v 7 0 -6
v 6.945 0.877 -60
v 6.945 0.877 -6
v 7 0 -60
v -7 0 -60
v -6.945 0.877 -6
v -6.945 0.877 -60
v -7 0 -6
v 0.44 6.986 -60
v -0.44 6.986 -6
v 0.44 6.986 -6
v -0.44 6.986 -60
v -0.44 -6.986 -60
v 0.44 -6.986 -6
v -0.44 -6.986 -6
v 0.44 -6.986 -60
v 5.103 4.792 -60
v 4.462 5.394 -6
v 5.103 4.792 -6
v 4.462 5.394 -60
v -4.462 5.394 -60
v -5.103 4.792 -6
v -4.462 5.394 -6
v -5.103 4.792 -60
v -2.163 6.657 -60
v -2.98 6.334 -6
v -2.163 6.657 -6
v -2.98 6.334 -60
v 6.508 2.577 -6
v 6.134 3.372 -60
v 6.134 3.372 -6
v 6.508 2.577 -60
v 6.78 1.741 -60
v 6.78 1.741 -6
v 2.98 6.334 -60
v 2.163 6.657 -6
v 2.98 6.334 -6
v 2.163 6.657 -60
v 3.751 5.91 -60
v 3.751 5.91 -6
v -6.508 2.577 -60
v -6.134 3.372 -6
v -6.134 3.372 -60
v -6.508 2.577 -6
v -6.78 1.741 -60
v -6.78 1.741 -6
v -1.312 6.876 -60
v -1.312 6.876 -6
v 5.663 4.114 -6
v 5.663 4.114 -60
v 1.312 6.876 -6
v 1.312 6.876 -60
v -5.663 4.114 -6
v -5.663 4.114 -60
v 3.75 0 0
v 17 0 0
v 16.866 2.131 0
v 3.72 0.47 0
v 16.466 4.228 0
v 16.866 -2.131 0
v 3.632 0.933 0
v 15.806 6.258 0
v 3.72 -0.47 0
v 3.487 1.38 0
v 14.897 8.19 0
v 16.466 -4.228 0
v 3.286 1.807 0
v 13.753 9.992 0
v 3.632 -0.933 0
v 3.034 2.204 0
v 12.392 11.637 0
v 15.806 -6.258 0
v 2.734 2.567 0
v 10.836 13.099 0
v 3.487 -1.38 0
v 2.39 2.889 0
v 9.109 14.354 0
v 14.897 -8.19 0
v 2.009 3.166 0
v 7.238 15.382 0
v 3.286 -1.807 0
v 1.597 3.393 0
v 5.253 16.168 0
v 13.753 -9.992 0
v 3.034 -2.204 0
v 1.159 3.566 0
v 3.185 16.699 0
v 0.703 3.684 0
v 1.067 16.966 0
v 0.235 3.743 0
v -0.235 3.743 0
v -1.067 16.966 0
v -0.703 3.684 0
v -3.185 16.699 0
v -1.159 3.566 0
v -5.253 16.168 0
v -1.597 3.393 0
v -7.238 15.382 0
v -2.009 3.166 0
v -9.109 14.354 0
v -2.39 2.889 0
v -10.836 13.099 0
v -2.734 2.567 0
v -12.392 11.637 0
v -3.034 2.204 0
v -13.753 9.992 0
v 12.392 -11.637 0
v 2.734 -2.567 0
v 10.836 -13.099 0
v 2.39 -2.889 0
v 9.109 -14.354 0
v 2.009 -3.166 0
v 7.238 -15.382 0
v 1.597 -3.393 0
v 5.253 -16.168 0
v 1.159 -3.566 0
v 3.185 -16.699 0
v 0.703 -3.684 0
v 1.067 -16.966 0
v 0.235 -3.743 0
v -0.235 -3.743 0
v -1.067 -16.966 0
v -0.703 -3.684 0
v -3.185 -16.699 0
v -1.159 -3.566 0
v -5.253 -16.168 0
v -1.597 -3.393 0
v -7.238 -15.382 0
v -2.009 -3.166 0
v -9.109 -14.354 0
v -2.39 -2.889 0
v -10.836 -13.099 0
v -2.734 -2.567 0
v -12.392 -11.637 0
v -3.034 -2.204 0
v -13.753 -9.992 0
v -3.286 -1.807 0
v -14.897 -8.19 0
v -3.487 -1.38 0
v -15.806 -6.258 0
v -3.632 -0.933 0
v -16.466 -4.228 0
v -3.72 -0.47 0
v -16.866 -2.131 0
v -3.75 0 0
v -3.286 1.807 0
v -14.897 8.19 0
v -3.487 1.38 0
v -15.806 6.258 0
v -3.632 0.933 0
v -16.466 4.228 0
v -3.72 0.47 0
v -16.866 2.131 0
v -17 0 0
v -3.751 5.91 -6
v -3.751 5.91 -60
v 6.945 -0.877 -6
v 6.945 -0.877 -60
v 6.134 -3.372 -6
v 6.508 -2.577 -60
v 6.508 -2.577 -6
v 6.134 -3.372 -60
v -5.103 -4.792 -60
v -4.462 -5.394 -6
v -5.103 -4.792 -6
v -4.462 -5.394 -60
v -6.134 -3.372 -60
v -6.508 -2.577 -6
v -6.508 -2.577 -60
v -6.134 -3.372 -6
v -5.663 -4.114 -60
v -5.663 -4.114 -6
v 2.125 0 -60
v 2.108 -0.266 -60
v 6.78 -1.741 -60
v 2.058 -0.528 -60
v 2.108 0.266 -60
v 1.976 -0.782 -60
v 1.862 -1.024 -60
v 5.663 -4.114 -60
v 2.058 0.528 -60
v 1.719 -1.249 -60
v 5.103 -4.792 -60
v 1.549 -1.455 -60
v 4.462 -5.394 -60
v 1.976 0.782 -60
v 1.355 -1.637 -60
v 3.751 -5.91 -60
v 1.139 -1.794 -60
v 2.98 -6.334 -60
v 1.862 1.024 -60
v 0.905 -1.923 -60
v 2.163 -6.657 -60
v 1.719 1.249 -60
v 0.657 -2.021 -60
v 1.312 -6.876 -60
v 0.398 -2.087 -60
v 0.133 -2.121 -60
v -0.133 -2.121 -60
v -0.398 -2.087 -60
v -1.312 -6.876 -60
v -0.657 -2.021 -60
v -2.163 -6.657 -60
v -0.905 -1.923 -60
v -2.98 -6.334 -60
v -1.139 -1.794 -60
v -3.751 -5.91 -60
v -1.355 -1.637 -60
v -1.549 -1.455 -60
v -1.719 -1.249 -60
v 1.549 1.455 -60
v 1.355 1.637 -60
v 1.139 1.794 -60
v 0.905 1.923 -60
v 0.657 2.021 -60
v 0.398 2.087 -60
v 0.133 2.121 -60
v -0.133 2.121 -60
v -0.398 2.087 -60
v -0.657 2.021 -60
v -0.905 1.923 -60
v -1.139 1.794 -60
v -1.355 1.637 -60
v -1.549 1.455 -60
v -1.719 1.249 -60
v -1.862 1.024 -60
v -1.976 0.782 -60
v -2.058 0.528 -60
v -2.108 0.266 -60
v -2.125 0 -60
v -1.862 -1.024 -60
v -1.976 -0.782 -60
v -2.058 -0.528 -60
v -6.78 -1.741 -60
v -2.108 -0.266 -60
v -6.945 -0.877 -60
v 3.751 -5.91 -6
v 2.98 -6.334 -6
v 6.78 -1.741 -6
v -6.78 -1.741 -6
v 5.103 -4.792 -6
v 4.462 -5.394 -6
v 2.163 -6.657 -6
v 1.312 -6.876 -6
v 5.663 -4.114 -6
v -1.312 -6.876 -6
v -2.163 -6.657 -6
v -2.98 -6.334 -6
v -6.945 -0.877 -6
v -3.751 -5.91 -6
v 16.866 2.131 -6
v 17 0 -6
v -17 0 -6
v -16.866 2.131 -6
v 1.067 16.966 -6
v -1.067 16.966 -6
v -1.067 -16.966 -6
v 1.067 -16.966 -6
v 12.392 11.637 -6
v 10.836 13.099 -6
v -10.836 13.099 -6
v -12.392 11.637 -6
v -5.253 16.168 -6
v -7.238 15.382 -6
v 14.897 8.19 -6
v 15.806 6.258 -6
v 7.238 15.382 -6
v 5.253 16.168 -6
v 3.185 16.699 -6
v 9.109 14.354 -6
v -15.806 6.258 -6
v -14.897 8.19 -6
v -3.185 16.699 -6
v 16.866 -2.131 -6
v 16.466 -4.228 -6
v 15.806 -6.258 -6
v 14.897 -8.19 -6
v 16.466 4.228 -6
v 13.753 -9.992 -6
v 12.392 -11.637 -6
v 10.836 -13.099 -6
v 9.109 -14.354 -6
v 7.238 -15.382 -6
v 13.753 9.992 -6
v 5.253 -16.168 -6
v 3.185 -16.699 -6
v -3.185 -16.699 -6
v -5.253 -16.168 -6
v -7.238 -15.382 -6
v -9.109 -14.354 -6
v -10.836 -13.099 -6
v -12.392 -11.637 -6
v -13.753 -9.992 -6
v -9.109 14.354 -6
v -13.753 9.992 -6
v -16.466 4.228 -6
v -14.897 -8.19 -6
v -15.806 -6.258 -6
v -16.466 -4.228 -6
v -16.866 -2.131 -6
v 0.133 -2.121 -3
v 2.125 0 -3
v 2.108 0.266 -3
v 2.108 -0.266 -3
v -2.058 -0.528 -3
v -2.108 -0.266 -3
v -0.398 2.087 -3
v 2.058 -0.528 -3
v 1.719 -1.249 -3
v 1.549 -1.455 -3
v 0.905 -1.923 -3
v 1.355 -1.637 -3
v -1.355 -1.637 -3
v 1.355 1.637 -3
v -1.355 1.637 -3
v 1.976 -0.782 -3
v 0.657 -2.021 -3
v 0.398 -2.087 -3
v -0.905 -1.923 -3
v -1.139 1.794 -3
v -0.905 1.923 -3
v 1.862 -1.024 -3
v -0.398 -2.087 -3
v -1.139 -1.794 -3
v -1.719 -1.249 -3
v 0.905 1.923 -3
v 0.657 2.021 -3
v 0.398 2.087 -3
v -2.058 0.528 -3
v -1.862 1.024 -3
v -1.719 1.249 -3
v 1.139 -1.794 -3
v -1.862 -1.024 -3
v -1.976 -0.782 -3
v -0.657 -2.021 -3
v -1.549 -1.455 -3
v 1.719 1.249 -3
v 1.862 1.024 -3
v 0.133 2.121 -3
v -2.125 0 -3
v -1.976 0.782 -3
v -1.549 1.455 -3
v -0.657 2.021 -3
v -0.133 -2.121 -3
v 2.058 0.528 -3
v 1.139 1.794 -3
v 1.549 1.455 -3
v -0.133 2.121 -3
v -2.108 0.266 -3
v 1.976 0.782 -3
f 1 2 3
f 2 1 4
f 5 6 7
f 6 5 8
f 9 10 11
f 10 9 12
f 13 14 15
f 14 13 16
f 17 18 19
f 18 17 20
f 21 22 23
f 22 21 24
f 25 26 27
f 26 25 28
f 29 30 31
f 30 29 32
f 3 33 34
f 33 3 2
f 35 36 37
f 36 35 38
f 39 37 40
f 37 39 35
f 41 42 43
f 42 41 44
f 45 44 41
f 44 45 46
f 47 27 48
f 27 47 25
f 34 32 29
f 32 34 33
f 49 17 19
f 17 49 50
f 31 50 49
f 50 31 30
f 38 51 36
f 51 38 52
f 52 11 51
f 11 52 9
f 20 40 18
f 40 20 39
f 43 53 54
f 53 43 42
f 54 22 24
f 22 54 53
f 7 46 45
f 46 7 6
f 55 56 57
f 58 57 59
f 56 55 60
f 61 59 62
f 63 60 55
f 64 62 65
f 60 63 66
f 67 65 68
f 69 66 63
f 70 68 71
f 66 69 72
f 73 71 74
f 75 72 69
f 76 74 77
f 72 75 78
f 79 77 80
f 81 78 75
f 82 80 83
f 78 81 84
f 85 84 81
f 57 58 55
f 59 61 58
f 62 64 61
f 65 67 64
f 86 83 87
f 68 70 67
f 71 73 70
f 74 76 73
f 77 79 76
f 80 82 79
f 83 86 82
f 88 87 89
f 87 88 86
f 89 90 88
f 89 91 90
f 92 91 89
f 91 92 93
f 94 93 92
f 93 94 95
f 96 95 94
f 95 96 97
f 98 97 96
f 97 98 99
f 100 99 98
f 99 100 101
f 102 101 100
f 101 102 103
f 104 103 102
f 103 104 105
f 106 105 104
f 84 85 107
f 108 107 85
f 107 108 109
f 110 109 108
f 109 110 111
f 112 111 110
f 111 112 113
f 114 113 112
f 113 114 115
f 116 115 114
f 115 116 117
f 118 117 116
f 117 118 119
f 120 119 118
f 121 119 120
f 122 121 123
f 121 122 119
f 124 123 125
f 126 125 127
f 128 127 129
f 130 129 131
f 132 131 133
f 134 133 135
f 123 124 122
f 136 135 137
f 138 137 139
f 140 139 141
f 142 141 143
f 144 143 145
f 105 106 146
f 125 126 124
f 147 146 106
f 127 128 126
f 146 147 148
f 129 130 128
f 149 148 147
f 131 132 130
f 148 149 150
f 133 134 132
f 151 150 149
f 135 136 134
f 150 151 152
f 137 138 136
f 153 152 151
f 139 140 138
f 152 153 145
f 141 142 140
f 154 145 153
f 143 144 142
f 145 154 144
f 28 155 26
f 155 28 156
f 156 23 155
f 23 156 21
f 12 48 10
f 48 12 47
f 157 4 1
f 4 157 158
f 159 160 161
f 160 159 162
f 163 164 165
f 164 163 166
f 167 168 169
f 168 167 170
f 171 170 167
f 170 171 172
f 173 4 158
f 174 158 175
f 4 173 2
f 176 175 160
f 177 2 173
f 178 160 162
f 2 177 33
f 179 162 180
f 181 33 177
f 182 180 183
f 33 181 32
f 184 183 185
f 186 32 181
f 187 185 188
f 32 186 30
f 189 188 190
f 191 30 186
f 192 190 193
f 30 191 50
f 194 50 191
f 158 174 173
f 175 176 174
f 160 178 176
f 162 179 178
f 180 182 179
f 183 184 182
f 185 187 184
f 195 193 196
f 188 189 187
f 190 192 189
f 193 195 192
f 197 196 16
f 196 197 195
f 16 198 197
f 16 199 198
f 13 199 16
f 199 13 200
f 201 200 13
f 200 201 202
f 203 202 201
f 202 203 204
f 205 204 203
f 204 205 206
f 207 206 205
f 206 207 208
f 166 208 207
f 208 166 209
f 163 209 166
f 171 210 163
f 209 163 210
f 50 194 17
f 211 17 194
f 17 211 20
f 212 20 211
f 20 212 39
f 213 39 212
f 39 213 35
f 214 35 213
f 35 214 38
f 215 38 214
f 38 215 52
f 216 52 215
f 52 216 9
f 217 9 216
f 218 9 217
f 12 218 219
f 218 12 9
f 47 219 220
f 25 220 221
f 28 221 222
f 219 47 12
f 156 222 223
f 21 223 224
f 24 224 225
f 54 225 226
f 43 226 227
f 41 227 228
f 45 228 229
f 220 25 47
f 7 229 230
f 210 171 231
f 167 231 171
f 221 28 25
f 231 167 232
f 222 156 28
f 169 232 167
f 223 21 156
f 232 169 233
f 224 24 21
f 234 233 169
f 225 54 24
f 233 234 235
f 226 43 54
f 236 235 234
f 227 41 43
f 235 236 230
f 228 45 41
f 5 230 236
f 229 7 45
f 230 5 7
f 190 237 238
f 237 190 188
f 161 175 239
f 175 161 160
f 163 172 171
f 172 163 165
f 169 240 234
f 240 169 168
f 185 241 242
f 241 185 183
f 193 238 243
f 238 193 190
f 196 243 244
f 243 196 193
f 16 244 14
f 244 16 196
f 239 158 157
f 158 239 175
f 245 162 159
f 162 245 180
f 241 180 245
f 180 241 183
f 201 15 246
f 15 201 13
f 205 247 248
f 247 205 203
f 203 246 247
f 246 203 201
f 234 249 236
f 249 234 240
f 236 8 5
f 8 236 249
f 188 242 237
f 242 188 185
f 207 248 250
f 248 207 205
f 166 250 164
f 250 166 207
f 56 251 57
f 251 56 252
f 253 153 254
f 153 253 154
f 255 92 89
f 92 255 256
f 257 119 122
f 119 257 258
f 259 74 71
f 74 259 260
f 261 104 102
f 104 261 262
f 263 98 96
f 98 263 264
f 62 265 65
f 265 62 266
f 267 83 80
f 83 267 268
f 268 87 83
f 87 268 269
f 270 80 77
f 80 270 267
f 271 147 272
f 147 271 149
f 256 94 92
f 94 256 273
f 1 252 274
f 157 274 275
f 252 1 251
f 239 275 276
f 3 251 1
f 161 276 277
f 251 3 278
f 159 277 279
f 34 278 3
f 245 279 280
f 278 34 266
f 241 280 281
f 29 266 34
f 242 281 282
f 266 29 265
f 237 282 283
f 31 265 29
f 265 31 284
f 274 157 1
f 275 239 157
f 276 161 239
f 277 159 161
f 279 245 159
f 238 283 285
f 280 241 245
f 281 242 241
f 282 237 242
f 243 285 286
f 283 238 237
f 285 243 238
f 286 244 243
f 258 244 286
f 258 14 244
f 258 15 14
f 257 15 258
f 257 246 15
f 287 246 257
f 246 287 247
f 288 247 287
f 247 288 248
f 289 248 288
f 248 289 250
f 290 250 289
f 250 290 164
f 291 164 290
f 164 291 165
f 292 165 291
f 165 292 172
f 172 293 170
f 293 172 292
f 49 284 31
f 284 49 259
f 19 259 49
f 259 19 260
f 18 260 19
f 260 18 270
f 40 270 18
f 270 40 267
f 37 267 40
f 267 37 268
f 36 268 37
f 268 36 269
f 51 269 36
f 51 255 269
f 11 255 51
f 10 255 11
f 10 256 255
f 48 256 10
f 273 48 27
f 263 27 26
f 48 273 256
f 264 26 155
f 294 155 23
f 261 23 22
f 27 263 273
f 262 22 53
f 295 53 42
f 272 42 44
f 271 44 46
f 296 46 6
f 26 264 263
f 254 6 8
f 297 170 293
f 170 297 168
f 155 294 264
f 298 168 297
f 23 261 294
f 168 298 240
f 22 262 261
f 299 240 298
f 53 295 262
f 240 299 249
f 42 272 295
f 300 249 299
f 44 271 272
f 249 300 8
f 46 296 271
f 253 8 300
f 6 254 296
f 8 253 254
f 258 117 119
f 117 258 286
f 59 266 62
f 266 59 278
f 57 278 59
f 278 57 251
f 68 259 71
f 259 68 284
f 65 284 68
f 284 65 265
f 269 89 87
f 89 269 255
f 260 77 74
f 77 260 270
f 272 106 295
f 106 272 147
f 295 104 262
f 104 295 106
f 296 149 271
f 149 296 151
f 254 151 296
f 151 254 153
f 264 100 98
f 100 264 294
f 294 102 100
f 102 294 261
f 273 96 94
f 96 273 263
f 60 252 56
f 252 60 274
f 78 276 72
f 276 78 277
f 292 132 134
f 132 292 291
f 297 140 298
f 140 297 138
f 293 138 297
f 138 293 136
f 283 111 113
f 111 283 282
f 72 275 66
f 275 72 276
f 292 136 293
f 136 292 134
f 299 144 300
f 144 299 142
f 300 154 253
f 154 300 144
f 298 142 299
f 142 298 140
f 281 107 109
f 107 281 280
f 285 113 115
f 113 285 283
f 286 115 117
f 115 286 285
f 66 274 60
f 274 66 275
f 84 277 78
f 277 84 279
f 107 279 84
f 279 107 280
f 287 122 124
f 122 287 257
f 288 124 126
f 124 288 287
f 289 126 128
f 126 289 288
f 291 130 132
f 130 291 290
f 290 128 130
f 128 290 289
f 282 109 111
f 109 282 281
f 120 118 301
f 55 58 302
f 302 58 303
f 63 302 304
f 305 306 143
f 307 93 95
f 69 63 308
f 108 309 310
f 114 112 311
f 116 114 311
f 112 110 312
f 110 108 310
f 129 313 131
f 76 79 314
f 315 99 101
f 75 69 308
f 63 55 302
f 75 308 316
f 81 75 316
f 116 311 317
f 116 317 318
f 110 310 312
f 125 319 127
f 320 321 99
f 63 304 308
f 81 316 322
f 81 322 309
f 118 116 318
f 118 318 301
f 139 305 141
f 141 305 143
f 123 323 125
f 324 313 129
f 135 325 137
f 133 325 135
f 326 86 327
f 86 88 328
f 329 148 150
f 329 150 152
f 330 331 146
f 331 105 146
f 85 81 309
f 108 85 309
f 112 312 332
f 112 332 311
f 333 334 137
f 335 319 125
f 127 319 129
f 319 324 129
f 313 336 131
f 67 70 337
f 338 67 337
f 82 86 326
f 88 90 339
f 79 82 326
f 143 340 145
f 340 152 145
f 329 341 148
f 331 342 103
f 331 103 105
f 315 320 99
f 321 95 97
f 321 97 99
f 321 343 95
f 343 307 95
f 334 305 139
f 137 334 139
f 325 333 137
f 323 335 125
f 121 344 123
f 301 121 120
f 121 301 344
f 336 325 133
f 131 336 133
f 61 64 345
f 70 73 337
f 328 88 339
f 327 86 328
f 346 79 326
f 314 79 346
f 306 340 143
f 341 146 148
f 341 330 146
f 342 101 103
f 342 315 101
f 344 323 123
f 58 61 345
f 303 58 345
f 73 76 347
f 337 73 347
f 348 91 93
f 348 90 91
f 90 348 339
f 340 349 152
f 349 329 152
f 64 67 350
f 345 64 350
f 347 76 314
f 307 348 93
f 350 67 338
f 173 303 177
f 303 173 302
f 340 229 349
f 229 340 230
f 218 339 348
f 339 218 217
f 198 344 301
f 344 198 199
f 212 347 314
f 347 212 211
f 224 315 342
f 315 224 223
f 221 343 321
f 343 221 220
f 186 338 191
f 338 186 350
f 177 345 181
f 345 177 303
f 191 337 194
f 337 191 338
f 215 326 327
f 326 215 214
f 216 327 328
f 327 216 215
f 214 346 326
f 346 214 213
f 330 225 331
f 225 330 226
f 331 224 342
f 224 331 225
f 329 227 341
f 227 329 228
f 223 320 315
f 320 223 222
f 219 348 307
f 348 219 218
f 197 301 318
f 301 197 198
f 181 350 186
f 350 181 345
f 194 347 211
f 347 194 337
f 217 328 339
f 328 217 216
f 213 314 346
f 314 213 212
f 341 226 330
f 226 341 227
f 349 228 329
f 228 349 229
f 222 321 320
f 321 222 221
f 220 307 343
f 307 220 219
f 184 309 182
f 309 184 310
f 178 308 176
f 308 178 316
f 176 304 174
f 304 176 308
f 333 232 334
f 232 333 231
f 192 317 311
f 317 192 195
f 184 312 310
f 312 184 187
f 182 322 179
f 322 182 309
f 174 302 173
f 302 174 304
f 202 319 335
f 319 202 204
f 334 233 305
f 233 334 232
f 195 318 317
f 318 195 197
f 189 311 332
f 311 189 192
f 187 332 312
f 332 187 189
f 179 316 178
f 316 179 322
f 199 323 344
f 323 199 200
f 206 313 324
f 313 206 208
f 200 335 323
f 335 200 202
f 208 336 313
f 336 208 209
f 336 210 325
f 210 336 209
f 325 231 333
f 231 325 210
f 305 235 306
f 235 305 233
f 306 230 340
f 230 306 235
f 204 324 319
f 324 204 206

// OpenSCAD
$fn = 50;


difference() {
	union() {
		translate(v = [0, 0, -60.0000000000]) {
			cylinder(h = 60, r = 7.0000000000);
		}
		translate(v = [0, 0, -6.0000000000]) {
			cylinder(h = 6, r = 17.0000000000);
		}
	}
	union() {
		translate(v = [0, 0, 0]) {
			rotate(a = [0, 0, 0]) {
				difference() {
					union() {
						#translate(v = [0, 0, -60.0000000000]) {
							cylinder(h = 60, r = 2.0000000000);
						}
						#translate(v = [0, 0, -3]) {
							cylinder(h = 3, r1 = 2.1250000000, r2 = 3.7500000000);
						}
						#translate(v = [0, 0, -60.0000000000]) {
							cylinder(h = 60, r = 2.1250000000);
						}
						#translate(v = [0, 0, -60.0000000000]) {
							cylinder(h = 60, r = 2.0000000000);
						}
					}
					union();
				}
			}
		}
	}
}
